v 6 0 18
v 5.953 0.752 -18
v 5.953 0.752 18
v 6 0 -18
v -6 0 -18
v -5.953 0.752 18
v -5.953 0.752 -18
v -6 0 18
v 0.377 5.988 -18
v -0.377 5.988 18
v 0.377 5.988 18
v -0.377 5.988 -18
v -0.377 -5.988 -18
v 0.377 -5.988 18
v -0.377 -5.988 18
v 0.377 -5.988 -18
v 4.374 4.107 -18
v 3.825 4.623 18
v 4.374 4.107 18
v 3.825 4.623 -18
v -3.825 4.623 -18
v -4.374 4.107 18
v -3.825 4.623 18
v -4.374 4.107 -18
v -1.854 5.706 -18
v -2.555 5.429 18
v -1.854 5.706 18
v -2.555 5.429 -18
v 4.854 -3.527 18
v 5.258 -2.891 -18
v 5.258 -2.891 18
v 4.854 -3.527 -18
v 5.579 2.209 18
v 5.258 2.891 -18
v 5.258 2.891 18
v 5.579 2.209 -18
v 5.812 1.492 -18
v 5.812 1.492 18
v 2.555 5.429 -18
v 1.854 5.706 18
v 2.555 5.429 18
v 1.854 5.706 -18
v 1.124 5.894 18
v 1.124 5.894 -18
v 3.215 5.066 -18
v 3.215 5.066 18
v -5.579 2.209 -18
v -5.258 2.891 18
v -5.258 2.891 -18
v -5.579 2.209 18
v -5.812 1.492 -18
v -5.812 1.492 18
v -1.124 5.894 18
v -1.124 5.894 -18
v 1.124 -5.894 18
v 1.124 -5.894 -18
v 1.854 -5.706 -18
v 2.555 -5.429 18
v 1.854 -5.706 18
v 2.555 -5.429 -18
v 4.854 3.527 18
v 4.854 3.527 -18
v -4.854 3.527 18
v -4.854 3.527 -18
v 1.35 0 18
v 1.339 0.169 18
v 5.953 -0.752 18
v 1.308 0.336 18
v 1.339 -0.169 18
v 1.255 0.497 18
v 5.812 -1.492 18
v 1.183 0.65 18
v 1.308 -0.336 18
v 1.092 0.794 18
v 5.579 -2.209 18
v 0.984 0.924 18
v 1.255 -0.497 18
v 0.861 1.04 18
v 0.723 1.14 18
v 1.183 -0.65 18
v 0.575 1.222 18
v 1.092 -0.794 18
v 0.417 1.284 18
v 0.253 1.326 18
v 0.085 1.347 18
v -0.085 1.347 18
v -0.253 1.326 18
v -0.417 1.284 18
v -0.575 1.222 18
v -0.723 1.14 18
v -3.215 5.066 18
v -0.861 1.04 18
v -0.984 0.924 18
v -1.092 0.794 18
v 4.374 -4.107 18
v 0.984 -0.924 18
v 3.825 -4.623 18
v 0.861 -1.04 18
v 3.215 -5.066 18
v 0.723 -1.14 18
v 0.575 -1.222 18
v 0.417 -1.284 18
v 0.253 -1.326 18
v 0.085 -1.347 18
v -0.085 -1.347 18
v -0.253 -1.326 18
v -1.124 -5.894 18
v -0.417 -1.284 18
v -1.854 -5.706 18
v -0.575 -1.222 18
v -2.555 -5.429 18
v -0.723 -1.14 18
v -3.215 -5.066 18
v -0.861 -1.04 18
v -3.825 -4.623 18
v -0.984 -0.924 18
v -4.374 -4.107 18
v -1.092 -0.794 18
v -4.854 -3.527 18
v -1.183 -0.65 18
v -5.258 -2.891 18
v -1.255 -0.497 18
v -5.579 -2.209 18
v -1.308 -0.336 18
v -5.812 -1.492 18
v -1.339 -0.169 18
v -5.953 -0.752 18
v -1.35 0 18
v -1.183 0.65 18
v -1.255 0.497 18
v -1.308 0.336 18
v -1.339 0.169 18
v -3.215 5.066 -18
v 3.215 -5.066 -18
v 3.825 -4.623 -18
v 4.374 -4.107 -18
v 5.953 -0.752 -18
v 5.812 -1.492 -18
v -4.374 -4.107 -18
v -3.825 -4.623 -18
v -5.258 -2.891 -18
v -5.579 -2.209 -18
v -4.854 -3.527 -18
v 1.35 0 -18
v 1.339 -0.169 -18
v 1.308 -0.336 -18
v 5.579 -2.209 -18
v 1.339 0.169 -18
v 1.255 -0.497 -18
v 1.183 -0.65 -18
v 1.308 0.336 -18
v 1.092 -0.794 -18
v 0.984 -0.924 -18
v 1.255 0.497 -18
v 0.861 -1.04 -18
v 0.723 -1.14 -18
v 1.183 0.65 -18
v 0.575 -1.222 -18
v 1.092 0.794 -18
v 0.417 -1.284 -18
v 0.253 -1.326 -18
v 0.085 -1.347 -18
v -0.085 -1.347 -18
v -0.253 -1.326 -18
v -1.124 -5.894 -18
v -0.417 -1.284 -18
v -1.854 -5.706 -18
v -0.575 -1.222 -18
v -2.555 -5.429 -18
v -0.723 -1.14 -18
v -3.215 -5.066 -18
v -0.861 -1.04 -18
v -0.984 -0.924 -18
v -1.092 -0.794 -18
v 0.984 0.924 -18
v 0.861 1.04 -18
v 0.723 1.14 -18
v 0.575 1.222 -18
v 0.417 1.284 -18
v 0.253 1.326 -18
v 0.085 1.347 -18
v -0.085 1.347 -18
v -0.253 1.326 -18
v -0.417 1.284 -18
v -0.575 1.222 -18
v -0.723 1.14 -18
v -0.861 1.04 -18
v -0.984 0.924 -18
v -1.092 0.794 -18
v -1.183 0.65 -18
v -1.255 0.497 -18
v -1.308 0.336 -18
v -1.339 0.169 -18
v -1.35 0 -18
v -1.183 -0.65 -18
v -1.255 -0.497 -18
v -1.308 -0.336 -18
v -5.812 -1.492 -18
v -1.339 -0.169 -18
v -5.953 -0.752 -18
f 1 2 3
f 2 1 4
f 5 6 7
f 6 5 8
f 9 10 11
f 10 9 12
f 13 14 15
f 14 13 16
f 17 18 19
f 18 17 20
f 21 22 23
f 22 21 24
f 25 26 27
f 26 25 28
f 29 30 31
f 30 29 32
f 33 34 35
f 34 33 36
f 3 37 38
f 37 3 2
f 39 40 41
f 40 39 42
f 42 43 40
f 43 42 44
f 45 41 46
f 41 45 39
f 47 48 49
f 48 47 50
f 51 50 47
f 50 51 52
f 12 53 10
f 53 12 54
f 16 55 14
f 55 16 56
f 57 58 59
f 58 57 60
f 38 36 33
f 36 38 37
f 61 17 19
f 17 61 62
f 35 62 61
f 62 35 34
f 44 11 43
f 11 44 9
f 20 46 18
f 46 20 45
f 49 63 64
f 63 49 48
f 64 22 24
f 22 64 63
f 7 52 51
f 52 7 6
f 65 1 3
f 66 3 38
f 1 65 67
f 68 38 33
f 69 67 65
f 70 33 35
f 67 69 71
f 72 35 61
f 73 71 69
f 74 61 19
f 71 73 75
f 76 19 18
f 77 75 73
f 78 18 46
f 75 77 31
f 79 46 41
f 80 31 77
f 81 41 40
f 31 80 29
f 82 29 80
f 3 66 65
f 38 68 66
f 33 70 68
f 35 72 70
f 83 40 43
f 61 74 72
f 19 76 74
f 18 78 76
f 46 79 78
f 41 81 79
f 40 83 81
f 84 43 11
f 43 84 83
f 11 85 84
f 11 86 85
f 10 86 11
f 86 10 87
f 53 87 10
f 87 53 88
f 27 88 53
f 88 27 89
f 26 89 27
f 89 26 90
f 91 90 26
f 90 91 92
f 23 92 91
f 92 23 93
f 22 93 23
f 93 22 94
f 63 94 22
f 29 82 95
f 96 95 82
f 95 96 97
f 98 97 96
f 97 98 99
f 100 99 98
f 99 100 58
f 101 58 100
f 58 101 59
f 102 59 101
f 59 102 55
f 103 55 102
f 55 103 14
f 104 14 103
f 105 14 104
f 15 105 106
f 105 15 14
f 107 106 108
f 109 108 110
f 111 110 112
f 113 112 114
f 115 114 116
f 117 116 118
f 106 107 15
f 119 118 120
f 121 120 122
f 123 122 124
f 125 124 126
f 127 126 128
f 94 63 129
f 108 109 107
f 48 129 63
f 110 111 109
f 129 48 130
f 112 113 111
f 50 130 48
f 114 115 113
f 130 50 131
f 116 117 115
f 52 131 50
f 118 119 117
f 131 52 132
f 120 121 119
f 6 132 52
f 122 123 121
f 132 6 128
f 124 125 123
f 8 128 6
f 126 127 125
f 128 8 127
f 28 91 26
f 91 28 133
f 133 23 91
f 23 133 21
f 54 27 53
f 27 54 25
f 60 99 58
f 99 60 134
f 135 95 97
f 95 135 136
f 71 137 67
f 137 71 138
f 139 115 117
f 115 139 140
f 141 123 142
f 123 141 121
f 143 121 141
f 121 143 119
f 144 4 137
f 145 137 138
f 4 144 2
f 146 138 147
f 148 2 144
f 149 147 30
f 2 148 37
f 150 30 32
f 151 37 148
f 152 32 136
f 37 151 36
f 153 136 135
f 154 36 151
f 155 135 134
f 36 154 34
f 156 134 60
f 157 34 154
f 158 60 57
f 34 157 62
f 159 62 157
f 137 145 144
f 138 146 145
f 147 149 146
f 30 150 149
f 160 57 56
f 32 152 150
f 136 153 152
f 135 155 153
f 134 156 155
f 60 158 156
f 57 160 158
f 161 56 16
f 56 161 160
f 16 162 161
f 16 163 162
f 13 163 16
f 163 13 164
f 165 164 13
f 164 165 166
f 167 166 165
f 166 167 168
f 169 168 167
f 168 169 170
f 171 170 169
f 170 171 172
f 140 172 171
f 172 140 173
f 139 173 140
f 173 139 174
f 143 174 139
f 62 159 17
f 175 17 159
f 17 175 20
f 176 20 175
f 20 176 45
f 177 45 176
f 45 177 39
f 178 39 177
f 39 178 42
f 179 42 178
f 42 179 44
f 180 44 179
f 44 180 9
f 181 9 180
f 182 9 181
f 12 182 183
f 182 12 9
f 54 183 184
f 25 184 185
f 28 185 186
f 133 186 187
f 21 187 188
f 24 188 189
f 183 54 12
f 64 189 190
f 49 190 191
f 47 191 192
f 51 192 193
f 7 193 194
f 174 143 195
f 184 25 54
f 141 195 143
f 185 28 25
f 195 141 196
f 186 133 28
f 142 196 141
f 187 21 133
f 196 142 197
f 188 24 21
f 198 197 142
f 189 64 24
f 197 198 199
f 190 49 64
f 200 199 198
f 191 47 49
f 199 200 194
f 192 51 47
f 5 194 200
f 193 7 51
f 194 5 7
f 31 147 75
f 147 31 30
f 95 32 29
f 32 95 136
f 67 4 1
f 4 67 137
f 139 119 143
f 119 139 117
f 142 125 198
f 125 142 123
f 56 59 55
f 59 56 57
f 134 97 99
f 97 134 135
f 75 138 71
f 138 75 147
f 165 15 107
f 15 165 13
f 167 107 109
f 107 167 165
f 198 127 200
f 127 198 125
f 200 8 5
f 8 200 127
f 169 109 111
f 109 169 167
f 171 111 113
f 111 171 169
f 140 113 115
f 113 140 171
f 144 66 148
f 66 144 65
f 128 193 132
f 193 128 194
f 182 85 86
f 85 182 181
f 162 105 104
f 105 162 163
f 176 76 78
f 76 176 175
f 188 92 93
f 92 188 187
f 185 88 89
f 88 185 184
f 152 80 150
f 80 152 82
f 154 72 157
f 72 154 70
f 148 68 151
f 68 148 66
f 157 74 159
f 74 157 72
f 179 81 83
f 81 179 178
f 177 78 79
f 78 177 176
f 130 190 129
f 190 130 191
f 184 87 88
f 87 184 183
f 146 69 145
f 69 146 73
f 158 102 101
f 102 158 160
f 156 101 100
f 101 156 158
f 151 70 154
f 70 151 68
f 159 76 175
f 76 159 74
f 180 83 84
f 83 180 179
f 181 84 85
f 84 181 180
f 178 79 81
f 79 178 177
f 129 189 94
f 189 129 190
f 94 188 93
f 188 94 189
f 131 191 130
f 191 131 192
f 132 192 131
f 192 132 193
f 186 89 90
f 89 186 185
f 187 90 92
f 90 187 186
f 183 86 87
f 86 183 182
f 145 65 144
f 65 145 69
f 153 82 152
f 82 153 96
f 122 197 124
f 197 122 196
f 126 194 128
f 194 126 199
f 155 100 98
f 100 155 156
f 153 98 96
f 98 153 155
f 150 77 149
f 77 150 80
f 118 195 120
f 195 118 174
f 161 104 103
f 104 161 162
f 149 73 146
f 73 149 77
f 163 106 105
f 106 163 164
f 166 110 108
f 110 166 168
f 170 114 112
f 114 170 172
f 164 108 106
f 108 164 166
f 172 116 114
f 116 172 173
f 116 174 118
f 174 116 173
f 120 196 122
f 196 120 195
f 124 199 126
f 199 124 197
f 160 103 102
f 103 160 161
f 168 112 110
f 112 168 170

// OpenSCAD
$fn = 50;


difference() {
	union() {
		translate(v = [0, 0, -18.0000000000]) {
			cylinder(h = 36, r = 6.0000000000);
		}
	}
	union() {
		translate(v = [0, 0, -100.0000000000]) {
			cylinder(h = 200, r = 1.3500000000);
		}
	}
}
